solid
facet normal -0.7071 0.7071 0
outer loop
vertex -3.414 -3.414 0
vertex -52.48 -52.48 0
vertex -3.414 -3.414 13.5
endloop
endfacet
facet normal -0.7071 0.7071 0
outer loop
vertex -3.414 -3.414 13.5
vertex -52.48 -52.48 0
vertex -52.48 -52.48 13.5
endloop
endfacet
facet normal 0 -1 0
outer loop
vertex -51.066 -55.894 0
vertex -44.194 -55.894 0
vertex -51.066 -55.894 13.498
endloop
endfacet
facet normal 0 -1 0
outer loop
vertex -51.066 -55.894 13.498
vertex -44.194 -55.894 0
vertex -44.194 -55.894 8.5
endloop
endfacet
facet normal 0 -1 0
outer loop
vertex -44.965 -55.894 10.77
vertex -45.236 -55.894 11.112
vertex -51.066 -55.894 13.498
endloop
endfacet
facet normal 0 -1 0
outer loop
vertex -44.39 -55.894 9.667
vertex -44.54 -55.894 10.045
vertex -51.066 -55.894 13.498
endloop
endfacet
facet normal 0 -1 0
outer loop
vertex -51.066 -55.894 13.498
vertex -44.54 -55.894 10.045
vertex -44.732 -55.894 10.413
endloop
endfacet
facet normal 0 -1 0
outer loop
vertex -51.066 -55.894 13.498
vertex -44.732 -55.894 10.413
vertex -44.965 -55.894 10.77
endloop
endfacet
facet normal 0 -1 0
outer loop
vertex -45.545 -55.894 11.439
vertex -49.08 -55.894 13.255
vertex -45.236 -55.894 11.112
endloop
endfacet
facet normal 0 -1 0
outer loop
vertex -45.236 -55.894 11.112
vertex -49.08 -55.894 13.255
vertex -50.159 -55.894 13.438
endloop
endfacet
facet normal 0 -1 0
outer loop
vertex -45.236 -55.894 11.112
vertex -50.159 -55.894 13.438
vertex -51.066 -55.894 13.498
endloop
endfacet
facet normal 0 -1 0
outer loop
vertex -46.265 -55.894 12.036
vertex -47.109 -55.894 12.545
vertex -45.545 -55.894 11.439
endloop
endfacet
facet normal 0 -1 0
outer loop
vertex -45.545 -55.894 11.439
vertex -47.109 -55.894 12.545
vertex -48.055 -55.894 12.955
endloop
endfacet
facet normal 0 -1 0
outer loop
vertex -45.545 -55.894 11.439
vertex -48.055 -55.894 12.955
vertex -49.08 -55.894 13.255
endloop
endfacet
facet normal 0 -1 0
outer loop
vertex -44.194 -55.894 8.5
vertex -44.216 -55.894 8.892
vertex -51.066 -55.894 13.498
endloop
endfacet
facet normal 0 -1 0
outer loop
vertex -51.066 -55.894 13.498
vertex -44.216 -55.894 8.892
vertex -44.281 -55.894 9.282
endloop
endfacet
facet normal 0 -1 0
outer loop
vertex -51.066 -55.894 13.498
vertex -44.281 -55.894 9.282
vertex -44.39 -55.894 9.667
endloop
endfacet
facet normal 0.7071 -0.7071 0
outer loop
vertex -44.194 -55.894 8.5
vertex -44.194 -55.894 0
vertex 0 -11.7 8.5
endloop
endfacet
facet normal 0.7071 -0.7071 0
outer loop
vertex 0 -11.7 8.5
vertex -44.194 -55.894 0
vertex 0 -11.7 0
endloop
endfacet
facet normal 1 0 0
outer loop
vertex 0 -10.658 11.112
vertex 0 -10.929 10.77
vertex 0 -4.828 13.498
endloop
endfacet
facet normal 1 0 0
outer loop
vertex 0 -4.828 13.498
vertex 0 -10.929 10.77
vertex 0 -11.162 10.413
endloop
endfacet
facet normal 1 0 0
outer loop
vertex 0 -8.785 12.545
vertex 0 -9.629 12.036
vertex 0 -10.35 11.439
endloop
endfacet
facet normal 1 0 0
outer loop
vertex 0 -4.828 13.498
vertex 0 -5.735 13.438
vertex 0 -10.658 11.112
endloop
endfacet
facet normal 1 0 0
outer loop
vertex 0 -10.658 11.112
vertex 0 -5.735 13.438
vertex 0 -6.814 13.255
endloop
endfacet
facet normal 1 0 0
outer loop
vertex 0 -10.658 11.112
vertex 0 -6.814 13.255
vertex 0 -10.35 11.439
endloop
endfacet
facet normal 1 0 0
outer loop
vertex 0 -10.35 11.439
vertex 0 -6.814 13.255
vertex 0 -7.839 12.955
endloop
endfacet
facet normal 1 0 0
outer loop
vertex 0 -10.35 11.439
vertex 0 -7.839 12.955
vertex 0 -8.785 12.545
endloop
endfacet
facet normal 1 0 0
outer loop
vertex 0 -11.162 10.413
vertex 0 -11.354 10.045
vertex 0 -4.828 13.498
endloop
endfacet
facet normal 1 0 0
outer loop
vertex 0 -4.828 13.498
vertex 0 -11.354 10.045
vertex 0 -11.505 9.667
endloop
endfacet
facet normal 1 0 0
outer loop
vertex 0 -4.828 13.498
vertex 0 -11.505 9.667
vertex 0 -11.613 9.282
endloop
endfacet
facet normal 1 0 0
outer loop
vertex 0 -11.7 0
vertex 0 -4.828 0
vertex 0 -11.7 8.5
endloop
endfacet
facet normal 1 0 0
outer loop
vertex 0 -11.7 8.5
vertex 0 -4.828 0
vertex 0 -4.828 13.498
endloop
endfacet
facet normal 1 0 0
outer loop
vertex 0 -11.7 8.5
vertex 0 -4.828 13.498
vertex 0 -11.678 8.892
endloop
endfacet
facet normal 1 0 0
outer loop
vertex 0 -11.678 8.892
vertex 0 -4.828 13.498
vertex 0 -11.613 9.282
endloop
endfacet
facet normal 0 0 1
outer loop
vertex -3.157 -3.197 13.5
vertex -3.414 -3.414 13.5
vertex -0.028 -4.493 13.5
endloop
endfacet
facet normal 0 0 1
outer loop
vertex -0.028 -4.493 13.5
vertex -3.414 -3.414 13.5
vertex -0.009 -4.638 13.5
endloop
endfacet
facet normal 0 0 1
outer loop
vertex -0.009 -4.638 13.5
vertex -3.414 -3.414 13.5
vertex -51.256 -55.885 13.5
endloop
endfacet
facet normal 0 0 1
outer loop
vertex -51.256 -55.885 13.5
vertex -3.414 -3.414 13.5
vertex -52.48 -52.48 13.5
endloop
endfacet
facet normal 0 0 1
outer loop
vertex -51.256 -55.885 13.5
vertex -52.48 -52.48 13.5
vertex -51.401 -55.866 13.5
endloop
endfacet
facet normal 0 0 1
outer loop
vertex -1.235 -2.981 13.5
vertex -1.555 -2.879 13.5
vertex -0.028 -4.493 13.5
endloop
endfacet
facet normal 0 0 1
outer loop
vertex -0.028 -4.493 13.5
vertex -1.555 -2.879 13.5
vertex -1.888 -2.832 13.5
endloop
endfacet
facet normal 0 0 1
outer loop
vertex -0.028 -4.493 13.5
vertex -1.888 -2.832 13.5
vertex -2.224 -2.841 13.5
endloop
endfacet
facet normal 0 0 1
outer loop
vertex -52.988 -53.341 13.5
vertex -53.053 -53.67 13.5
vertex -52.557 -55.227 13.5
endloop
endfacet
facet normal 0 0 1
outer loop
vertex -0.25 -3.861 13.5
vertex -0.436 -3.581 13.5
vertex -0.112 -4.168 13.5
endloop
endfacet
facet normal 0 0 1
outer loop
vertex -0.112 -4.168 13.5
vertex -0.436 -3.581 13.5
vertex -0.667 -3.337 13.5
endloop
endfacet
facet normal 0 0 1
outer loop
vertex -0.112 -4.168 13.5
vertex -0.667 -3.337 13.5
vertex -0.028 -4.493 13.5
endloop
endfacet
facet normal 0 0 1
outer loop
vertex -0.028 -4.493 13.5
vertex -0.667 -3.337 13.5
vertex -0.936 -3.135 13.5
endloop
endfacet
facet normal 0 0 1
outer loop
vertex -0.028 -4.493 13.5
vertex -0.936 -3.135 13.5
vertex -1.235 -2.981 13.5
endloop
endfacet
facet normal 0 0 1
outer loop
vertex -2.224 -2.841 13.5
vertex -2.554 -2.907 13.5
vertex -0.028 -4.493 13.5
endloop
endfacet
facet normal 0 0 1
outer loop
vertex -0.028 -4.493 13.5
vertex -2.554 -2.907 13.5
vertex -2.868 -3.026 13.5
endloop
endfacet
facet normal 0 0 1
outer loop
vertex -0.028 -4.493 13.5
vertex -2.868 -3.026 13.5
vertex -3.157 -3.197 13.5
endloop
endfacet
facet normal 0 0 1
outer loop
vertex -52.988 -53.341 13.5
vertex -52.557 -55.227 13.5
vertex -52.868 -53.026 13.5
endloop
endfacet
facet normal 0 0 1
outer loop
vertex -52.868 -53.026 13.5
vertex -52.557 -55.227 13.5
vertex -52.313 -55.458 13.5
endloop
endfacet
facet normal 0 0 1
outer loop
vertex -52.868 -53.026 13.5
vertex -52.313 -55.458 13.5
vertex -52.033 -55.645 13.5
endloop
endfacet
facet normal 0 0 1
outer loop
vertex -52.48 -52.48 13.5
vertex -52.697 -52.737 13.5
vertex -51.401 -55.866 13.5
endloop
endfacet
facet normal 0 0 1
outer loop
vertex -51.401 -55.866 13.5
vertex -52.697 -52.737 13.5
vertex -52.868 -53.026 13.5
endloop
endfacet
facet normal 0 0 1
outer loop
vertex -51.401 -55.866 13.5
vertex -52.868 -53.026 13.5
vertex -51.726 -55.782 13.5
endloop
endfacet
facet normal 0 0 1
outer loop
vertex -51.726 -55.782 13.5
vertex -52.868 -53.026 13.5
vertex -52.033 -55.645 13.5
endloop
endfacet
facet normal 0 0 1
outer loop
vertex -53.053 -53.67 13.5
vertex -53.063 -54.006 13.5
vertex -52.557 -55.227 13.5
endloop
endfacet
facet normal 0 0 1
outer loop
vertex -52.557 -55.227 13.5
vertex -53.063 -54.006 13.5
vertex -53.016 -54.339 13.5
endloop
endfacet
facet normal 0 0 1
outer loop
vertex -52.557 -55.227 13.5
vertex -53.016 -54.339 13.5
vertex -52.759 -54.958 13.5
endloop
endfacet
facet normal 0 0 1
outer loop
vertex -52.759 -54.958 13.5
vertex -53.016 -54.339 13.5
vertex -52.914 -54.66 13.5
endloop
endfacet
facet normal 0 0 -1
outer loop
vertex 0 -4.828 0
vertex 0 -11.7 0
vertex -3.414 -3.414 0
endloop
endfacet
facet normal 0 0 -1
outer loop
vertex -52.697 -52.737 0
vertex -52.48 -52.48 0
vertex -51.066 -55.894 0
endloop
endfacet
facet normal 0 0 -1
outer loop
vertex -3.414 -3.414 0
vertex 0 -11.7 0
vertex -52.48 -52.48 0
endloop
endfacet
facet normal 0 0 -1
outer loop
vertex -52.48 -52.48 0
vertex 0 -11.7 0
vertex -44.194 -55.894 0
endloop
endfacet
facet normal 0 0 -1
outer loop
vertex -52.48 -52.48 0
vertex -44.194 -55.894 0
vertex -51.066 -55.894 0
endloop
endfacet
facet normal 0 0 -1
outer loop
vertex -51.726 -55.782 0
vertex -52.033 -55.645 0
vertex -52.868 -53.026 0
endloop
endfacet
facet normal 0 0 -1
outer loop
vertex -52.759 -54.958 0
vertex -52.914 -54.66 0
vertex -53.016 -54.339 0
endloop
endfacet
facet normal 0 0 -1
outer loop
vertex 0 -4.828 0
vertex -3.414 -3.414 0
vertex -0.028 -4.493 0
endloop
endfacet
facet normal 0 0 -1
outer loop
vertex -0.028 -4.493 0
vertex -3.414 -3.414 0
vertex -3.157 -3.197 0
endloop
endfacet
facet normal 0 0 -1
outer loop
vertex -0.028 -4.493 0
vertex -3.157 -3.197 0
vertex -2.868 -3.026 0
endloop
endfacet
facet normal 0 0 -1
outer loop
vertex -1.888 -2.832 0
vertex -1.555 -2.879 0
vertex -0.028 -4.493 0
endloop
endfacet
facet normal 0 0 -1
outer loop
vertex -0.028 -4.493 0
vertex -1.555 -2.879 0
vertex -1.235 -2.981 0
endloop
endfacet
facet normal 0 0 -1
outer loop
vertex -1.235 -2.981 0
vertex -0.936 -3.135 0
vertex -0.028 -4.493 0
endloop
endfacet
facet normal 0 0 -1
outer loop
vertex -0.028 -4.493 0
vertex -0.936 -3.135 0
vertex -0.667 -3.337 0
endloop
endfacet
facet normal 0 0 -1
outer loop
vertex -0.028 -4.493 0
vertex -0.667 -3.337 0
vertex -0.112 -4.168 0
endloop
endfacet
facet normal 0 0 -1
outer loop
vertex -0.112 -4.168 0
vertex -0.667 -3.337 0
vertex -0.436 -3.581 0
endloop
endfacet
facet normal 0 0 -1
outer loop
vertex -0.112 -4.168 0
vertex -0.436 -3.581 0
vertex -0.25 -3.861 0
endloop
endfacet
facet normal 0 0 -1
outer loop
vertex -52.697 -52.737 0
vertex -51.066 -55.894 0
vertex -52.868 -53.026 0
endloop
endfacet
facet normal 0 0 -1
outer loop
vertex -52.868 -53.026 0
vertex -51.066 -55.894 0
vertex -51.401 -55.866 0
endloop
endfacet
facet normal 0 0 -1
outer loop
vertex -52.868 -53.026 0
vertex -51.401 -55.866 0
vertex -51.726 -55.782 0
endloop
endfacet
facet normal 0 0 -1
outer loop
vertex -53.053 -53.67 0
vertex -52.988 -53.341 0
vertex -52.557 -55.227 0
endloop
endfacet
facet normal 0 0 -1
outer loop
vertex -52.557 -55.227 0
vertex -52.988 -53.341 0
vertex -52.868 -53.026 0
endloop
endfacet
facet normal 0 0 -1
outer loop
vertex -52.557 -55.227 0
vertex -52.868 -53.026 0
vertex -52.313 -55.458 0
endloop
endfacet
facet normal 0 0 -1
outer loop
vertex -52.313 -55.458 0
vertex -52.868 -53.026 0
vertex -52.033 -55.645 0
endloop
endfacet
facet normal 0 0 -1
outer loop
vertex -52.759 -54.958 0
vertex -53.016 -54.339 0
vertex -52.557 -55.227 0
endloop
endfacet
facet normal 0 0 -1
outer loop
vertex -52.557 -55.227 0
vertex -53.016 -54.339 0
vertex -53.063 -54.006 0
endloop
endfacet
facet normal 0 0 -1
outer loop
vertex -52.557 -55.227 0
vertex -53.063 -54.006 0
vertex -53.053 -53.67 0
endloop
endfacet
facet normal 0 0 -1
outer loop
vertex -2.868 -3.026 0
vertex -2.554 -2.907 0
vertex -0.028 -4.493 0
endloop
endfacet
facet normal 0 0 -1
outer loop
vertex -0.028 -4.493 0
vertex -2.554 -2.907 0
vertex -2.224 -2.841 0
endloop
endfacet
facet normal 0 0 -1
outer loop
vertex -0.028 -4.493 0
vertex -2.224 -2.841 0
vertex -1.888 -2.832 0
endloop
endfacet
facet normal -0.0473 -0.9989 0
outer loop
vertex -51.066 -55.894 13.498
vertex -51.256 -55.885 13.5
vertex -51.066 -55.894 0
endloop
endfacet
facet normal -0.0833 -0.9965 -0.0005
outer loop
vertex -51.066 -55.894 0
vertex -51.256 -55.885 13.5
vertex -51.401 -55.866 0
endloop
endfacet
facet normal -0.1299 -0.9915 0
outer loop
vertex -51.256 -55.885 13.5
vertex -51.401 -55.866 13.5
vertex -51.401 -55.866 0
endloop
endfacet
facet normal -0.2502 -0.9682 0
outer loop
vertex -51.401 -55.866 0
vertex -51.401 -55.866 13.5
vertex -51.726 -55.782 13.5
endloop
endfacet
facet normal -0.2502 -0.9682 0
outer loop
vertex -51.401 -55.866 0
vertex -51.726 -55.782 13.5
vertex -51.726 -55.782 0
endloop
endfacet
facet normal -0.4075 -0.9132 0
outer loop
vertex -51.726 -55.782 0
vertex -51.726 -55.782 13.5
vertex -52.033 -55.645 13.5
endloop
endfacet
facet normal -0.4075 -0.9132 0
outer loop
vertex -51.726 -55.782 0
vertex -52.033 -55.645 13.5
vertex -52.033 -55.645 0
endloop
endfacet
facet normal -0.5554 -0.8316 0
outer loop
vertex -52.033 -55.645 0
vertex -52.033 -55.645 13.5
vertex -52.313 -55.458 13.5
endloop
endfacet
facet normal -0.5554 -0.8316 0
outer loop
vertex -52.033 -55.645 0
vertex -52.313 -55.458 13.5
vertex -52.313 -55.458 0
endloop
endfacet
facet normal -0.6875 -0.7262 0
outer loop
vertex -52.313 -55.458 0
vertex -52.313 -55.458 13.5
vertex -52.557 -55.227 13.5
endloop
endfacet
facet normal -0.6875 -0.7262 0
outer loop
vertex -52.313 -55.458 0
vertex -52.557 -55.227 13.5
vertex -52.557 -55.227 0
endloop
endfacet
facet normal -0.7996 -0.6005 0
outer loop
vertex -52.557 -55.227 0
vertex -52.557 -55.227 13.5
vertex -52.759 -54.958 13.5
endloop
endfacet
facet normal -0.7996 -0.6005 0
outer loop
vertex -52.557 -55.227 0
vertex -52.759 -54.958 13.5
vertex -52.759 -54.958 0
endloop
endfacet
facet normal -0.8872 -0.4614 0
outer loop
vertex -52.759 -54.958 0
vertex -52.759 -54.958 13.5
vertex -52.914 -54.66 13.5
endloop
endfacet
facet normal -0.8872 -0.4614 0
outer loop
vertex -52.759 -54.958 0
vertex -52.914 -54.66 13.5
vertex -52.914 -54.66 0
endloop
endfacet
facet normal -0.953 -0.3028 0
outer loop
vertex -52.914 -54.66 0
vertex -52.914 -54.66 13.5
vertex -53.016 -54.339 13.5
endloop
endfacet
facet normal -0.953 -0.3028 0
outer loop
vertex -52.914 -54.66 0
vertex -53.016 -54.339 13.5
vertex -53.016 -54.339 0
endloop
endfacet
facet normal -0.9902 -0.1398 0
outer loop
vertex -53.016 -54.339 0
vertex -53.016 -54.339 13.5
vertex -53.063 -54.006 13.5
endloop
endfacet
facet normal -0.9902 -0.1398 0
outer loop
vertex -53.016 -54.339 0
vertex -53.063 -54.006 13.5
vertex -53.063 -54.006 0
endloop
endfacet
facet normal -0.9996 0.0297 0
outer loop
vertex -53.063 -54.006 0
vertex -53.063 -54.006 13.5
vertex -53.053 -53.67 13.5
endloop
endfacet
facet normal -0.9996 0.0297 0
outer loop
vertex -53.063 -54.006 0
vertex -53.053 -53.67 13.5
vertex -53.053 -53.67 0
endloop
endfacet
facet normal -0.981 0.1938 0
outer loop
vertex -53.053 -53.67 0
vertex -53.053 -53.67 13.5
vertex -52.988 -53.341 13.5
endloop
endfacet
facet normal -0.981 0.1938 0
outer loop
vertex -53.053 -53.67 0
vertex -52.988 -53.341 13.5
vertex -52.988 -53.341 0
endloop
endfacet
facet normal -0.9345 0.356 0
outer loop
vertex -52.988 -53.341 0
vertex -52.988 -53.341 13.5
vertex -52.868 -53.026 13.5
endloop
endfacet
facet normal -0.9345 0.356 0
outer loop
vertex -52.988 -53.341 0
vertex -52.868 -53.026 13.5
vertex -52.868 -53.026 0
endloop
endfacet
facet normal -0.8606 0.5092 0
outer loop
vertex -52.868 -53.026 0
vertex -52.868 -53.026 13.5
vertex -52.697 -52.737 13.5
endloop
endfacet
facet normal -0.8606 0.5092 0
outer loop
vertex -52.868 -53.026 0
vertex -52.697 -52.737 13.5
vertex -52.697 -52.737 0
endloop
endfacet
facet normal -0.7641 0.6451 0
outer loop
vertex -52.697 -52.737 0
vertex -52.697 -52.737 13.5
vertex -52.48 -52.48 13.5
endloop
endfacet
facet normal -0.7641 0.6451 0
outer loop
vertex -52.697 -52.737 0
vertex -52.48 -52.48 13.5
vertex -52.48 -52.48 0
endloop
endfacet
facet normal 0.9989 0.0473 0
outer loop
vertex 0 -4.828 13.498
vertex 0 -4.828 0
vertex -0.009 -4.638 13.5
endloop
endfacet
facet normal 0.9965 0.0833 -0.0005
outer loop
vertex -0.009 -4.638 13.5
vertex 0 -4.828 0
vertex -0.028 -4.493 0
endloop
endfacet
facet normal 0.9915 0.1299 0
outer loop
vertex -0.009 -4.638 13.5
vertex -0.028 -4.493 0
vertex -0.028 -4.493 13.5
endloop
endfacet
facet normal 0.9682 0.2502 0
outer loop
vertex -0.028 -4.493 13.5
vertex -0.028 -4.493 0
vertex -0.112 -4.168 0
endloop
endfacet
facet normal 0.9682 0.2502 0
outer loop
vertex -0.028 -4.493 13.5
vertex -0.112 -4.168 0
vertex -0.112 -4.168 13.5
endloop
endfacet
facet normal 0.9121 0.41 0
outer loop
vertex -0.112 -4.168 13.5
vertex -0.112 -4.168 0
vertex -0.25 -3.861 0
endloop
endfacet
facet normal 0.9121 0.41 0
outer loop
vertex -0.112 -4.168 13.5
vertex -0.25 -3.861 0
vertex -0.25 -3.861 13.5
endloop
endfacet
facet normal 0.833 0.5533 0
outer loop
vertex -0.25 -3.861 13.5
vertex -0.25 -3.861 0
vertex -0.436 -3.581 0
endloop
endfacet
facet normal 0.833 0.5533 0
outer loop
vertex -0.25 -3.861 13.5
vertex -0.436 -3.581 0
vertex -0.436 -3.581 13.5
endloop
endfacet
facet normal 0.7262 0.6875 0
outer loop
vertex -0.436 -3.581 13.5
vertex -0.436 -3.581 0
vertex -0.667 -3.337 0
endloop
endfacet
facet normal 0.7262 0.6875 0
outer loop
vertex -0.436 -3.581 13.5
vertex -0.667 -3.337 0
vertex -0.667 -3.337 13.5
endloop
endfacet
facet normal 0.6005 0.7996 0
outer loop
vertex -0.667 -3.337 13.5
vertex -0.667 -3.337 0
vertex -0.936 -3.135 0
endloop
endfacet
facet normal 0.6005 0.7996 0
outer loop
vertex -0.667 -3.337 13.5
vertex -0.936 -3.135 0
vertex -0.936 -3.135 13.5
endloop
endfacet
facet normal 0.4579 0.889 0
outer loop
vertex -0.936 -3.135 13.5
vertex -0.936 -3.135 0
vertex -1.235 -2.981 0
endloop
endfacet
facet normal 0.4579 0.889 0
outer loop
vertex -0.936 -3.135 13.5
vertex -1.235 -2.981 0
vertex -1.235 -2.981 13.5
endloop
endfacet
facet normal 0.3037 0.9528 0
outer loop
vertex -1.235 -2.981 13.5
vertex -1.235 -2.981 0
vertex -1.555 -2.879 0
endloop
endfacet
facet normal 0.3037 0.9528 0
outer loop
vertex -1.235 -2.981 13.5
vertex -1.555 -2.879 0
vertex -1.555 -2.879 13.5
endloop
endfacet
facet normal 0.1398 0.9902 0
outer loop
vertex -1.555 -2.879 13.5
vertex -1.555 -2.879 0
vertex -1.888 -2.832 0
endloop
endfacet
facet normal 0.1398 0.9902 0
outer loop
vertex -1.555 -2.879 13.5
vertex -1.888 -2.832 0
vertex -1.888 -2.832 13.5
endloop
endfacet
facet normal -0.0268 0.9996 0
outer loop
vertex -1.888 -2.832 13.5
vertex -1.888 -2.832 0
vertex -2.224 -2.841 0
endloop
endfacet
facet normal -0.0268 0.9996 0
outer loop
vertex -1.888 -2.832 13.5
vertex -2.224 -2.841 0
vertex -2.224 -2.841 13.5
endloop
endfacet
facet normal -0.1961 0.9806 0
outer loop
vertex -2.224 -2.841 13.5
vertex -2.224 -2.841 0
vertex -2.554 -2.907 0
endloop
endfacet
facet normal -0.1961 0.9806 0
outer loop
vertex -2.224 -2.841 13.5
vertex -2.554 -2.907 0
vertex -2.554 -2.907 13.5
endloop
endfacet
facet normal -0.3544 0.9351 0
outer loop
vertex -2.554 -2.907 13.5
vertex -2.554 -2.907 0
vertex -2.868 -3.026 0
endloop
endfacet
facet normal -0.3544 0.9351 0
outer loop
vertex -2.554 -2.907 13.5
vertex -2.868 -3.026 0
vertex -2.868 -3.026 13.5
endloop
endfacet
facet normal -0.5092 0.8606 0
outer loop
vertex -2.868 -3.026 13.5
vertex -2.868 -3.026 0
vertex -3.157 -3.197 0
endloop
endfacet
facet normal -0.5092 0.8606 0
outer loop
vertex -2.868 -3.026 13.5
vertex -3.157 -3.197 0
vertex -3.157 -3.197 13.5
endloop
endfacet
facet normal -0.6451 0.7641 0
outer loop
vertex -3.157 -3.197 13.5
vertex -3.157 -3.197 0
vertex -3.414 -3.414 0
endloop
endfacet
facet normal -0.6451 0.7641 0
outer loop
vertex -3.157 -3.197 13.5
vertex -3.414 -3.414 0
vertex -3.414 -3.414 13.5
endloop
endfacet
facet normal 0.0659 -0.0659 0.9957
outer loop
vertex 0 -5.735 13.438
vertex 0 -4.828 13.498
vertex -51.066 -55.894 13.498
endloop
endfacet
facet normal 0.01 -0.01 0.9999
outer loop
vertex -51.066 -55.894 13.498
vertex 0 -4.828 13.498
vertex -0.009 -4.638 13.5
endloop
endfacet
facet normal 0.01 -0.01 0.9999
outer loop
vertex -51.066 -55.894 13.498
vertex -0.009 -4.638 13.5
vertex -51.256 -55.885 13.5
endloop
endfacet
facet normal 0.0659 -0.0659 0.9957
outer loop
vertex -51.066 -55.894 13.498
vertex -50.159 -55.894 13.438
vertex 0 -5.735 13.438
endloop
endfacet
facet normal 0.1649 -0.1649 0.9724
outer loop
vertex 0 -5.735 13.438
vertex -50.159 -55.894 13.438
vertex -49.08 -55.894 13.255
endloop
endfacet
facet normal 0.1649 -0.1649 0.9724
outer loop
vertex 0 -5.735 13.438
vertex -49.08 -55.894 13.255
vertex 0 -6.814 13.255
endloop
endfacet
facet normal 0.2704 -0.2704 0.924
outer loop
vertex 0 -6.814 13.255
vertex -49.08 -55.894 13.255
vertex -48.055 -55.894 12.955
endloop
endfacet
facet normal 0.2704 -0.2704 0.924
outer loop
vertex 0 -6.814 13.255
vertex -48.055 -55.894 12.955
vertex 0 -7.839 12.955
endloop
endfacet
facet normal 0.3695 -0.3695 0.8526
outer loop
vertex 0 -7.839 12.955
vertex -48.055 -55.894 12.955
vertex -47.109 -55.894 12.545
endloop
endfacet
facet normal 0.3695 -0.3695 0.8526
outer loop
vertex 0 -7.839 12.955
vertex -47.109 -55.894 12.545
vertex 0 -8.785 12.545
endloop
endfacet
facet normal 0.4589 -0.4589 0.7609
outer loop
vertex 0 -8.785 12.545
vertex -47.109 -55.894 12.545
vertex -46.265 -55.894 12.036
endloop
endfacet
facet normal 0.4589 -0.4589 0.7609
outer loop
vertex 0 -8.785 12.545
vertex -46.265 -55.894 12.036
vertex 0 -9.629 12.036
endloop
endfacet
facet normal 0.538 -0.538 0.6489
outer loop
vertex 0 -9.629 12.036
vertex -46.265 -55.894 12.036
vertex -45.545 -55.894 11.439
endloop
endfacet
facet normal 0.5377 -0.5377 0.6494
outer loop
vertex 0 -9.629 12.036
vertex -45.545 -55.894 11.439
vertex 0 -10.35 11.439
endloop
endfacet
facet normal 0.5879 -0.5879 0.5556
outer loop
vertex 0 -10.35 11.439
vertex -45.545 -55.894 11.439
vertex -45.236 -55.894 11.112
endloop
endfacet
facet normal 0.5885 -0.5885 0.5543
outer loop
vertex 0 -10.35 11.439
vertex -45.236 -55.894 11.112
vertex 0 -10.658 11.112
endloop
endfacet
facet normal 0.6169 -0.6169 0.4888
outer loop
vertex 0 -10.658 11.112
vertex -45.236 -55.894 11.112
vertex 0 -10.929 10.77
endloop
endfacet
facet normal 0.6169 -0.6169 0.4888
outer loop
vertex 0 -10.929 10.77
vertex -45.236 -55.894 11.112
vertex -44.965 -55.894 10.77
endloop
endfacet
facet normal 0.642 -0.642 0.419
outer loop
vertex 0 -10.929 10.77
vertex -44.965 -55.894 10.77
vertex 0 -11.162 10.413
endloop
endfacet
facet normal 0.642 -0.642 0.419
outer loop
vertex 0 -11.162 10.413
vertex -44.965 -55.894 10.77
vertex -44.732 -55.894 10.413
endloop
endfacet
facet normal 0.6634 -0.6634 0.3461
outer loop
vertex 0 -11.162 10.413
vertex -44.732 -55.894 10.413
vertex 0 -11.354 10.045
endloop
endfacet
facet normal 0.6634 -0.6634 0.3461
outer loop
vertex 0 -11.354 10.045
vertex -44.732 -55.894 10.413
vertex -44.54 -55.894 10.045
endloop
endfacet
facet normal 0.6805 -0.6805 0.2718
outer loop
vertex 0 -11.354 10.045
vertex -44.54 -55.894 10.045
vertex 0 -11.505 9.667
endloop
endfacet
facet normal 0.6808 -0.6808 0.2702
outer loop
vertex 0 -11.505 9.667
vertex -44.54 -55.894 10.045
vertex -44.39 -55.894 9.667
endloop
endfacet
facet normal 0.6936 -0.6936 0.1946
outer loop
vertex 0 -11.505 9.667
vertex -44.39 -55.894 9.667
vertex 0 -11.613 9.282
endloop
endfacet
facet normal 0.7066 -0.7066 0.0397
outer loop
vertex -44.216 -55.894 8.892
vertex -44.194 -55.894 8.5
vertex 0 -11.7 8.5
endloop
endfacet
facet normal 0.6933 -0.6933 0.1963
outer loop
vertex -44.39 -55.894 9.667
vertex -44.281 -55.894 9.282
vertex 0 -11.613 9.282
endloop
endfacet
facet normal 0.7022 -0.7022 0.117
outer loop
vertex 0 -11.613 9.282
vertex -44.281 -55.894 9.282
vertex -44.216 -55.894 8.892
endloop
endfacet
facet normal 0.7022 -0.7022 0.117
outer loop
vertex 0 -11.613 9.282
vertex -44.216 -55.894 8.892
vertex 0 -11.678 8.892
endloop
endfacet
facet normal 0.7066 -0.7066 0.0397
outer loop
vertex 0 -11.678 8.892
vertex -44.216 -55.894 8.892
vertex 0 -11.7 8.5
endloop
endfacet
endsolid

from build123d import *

# Parameters (mm, degrees)
EXTRUDE_1_DEPTH = 13.5
FILLET_1_R      = 2
FILLET_2_R      = 2
FILLET_3_R      = 5


with BuildPart() as part:
    # 草图1 → 凸台-拉伸1 (new body)
    with BuildSketch(Plane.XY):
        Polygon((0, 0), (0, -11.7), (-44.194173824, -55.894173824), (-55.894173824, -55.894173824), align=None)
    extrude(amount=EXTRUDE_1_DEPTH)

    # 圆角1
    fillet_1_edges = [part.edges().sort_by_distance(p)[0] for p in [
        (-55.894173824, -55.894173824, 6.75),
    ]]
    fillet(fillet_1_edges, radius=FILLET_1_R)

    # 圆角2
    fillet_2_edges = [part.edges().sort_by_distance(p)[0] for p in [
        (0, 0, 6.75),
    ]]
    fillet(fillet_2_edges, radius=FILLET_2_R)

    # 圆角3
    fillet_3_edges = [part.edges().sort_by_distance(p)[0] for p in [
        (-22.097086912, -33.797086912, 13.5),
    ]]
    fillet(fillet_3_edges, radius=FILLET_3_R)


solid = part.part
